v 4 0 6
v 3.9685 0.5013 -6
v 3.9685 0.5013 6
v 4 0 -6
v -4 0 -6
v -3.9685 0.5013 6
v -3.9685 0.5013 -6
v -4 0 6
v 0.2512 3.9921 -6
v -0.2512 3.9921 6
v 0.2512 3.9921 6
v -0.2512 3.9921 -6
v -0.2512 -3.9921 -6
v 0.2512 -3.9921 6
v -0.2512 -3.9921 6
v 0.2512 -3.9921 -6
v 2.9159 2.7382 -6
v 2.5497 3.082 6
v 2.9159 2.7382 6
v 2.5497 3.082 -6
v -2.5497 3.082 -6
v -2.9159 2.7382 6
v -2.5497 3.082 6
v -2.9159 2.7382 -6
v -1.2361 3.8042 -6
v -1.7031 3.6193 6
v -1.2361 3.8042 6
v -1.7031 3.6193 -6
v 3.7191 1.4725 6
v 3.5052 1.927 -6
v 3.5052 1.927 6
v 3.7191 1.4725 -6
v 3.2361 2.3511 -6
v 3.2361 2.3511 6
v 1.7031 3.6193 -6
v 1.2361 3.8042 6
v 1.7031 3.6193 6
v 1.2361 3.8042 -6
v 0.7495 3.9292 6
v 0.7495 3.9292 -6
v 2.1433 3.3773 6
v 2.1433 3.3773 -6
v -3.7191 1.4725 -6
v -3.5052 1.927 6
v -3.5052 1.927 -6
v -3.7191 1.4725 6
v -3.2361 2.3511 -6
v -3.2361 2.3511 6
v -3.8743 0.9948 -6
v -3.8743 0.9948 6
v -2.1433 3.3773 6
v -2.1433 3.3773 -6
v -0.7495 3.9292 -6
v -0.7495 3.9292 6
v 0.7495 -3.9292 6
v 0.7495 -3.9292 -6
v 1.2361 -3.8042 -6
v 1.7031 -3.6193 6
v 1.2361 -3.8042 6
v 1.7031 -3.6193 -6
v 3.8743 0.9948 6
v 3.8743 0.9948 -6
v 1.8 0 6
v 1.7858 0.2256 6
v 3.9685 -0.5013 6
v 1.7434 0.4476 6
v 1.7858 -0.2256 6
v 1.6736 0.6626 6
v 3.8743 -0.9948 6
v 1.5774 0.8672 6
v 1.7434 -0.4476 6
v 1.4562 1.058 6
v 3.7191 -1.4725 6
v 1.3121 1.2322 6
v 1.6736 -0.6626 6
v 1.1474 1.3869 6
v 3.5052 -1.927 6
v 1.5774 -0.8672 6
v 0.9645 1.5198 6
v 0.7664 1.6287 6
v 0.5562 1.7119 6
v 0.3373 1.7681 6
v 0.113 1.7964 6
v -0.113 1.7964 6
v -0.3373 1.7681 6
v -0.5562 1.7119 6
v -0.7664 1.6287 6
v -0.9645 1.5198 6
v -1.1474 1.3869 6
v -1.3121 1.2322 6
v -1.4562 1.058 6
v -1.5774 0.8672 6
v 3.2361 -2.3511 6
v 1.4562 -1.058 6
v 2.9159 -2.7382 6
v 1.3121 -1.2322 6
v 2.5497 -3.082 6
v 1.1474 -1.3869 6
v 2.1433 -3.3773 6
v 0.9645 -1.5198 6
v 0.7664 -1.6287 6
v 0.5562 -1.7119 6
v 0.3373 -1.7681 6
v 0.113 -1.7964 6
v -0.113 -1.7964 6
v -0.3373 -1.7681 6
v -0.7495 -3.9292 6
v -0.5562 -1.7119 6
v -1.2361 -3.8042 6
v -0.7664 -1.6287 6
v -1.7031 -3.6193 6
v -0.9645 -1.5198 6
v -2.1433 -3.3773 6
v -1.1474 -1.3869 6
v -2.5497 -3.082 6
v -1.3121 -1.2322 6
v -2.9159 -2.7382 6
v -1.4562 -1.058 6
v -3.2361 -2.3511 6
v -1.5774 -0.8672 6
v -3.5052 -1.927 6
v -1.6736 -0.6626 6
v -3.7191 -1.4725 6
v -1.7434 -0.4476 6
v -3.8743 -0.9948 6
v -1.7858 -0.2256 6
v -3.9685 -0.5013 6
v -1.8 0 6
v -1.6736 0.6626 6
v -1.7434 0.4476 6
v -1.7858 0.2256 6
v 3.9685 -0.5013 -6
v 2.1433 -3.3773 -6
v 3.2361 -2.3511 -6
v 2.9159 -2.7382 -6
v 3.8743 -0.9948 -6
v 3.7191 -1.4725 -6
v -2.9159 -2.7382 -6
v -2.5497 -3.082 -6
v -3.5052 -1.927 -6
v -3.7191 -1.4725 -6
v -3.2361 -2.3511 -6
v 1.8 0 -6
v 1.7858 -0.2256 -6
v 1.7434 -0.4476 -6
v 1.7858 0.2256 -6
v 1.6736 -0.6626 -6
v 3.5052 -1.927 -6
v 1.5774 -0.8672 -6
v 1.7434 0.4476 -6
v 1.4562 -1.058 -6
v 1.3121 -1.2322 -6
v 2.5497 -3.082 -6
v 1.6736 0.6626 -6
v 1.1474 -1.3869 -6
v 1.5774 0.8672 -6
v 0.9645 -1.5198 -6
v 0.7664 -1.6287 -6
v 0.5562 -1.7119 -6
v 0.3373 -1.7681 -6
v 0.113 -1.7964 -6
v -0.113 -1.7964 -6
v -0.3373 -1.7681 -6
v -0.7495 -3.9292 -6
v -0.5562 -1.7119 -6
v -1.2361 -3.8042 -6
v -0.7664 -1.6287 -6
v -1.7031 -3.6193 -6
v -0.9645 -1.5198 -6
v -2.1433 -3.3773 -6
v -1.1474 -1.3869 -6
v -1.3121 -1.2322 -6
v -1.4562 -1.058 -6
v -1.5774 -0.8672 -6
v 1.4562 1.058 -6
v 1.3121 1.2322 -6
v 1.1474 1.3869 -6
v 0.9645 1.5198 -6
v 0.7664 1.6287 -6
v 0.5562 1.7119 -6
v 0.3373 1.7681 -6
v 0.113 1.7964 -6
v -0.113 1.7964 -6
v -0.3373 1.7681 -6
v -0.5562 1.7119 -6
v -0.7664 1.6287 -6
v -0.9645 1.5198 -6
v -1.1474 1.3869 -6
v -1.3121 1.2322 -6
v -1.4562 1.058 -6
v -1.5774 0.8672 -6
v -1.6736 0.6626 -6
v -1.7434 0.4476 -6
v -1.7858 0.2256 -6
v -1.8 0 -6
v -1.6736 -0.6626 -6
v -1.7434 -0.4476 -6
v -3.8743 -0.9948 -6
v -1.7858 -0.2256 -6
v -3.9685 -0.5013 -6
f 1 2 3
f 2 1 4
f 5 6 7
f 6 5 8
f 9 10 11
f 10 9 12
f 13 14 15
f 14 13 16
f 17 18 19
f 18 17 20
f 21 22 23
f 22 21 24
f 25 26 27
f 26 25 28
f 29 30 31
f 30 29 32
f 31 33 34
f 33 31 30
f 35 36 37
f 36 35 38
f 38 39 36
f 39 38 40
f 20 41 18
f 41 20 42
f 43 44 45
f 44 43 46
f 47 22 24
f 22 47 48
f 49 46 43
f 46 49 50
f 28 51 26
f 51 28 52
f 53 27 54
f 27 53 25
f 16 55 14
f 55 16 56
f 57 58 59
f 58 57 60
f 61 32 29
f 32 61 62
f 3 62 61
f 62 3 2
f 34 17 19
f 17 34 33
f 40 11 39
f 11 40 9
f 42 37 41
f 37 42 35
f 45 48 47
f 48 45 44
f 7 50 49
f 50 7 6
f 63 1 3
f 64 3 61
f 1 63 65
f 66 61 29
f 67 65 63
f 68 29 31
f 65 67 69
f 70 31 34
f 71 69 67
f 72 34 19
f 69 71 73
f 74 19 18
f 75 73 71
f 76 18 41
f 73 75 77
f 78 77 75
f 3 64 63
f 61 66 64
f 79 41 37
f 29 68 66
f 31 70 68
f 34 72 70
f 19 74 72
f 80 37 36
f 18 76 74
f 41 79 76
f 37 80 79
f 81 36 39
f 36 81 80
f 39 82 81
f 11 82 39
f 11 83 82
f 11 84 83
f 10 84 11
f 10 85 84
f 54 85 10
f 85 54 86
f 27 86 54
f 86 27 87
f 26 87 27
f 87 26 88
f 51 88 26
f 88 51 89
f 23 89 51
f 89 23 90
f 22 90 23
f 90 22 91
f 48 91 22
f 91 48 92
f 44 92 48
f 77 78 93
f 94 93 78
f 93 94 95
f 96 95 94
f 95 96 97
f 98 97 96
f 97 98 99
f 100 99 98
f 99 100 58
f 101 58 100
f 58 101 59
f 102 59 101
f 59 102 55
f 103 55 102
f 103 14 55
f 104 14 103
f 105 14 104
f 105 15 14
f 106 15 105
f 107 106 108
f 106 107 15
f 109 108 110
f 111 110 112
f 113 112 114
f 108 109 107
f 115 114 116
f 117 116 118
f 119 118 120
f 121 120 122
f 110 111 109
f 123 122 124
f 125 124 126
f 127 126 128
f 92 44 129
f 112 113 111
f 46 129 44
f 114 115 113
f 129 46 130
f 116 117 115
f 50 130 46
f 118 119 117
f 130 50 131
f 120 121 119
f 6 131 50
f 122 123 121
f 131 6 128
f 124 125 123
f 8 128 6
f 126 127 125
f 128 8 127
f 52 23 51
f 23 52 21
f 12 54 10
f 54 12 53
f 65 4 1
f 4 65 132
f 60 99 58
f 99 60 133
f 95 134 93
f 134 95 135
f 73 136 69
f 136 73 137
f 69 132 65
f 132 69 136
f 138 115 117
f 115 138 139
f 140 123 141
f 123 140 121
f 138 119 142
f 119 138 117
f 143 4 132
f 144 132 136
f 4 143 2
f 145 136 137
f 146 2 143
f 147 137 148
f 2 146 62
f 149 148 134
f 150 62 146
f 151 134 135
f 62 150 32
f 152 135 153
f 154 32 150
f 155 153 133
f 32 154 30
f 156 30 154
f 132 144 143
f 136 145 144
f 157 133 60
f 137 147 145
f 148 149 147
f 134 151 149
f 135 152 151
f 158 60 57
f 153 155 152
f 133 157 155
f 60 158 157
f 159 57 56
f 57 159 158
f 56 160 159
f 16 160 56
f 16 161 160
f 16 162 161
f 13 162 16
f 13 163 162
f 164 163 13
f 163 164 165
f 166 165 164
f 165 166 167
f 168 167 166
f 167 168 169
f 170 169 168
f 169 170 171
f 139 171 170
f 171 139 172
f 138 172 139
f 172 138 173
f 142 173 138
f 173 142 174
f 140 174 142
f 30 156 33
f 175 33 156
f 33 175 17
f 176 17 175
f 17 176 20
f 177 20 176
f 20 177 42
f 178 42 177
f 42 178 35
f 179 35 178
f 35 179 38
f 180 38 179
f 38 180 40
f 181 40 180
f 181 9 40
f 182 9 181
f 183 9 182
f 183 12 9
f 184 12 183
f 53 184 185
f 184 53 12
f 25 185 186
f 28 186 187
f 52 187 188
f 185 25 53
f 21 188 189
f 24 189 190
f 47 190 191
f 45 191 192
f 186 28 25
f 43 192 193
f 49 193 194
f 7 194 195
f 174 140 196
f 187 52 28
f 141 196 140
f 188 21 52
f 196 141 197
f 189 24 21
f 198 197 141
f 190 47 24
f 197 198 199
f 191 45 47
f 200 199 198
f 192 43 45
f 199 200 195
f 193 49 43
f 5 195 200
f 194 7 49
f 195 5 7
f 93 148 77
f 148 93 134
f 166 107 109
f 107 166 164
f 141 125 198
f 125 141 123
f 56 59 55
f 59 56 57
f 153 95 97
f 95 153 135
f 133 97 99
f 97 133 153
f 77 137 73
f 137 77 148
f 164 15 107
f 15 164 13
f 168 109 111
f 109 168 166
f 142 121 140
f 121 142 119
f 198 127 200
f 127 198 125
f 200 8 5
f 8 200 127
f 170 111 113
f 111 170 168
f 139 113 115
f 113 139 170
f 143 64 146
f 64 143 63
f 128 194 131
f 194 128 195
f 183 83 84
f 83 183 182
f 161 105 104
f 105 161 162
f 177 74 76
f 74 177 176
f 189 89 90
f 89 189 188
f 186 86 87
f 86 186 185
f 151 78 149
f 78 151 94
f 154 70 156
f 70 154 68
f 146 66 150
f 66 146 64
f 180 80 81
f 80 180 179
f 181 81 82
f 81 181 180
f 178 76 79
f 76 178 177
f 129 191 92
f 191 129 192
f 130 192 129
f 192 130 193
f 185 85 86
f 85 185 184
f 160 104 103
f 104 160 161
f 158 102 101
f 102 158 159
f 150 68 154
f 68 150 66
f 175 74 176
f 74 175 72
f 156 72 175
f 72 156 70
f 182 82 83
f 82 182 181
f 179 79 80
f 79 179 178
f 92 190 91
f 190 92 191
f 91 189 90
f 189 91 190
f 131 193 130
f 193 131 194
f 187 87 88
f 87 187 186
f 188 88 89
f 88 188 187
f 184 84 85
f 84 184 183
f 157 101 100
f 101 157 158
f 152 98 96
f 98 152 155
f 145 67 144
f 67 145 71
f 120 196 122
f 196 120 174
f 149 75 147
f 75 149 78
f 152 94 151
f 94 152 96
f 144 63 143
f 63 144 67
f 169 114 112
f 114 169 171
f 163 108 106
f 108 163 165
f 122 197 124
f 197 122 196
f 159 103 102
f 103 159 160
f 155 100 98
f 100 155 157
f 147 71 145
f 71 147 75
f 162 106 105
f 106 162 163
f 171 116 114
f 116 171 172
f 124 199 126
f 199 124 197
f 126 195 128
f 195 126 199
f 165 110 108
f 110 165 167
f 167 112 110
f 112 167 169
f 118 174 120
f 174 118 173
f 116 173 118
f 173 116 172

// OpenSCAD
$fn = 50;


difference() {
	union() {
		translate(v = [0, 0, -6.0000000000]) {
			cylinder(h = 12, r = 4.0000000000);
		}
	}
	union() {
		translate(v = [0, 0, -100.0000000000]) {
			cylinder(h = 200, r = 1.8000000000);
		}
	}
}
